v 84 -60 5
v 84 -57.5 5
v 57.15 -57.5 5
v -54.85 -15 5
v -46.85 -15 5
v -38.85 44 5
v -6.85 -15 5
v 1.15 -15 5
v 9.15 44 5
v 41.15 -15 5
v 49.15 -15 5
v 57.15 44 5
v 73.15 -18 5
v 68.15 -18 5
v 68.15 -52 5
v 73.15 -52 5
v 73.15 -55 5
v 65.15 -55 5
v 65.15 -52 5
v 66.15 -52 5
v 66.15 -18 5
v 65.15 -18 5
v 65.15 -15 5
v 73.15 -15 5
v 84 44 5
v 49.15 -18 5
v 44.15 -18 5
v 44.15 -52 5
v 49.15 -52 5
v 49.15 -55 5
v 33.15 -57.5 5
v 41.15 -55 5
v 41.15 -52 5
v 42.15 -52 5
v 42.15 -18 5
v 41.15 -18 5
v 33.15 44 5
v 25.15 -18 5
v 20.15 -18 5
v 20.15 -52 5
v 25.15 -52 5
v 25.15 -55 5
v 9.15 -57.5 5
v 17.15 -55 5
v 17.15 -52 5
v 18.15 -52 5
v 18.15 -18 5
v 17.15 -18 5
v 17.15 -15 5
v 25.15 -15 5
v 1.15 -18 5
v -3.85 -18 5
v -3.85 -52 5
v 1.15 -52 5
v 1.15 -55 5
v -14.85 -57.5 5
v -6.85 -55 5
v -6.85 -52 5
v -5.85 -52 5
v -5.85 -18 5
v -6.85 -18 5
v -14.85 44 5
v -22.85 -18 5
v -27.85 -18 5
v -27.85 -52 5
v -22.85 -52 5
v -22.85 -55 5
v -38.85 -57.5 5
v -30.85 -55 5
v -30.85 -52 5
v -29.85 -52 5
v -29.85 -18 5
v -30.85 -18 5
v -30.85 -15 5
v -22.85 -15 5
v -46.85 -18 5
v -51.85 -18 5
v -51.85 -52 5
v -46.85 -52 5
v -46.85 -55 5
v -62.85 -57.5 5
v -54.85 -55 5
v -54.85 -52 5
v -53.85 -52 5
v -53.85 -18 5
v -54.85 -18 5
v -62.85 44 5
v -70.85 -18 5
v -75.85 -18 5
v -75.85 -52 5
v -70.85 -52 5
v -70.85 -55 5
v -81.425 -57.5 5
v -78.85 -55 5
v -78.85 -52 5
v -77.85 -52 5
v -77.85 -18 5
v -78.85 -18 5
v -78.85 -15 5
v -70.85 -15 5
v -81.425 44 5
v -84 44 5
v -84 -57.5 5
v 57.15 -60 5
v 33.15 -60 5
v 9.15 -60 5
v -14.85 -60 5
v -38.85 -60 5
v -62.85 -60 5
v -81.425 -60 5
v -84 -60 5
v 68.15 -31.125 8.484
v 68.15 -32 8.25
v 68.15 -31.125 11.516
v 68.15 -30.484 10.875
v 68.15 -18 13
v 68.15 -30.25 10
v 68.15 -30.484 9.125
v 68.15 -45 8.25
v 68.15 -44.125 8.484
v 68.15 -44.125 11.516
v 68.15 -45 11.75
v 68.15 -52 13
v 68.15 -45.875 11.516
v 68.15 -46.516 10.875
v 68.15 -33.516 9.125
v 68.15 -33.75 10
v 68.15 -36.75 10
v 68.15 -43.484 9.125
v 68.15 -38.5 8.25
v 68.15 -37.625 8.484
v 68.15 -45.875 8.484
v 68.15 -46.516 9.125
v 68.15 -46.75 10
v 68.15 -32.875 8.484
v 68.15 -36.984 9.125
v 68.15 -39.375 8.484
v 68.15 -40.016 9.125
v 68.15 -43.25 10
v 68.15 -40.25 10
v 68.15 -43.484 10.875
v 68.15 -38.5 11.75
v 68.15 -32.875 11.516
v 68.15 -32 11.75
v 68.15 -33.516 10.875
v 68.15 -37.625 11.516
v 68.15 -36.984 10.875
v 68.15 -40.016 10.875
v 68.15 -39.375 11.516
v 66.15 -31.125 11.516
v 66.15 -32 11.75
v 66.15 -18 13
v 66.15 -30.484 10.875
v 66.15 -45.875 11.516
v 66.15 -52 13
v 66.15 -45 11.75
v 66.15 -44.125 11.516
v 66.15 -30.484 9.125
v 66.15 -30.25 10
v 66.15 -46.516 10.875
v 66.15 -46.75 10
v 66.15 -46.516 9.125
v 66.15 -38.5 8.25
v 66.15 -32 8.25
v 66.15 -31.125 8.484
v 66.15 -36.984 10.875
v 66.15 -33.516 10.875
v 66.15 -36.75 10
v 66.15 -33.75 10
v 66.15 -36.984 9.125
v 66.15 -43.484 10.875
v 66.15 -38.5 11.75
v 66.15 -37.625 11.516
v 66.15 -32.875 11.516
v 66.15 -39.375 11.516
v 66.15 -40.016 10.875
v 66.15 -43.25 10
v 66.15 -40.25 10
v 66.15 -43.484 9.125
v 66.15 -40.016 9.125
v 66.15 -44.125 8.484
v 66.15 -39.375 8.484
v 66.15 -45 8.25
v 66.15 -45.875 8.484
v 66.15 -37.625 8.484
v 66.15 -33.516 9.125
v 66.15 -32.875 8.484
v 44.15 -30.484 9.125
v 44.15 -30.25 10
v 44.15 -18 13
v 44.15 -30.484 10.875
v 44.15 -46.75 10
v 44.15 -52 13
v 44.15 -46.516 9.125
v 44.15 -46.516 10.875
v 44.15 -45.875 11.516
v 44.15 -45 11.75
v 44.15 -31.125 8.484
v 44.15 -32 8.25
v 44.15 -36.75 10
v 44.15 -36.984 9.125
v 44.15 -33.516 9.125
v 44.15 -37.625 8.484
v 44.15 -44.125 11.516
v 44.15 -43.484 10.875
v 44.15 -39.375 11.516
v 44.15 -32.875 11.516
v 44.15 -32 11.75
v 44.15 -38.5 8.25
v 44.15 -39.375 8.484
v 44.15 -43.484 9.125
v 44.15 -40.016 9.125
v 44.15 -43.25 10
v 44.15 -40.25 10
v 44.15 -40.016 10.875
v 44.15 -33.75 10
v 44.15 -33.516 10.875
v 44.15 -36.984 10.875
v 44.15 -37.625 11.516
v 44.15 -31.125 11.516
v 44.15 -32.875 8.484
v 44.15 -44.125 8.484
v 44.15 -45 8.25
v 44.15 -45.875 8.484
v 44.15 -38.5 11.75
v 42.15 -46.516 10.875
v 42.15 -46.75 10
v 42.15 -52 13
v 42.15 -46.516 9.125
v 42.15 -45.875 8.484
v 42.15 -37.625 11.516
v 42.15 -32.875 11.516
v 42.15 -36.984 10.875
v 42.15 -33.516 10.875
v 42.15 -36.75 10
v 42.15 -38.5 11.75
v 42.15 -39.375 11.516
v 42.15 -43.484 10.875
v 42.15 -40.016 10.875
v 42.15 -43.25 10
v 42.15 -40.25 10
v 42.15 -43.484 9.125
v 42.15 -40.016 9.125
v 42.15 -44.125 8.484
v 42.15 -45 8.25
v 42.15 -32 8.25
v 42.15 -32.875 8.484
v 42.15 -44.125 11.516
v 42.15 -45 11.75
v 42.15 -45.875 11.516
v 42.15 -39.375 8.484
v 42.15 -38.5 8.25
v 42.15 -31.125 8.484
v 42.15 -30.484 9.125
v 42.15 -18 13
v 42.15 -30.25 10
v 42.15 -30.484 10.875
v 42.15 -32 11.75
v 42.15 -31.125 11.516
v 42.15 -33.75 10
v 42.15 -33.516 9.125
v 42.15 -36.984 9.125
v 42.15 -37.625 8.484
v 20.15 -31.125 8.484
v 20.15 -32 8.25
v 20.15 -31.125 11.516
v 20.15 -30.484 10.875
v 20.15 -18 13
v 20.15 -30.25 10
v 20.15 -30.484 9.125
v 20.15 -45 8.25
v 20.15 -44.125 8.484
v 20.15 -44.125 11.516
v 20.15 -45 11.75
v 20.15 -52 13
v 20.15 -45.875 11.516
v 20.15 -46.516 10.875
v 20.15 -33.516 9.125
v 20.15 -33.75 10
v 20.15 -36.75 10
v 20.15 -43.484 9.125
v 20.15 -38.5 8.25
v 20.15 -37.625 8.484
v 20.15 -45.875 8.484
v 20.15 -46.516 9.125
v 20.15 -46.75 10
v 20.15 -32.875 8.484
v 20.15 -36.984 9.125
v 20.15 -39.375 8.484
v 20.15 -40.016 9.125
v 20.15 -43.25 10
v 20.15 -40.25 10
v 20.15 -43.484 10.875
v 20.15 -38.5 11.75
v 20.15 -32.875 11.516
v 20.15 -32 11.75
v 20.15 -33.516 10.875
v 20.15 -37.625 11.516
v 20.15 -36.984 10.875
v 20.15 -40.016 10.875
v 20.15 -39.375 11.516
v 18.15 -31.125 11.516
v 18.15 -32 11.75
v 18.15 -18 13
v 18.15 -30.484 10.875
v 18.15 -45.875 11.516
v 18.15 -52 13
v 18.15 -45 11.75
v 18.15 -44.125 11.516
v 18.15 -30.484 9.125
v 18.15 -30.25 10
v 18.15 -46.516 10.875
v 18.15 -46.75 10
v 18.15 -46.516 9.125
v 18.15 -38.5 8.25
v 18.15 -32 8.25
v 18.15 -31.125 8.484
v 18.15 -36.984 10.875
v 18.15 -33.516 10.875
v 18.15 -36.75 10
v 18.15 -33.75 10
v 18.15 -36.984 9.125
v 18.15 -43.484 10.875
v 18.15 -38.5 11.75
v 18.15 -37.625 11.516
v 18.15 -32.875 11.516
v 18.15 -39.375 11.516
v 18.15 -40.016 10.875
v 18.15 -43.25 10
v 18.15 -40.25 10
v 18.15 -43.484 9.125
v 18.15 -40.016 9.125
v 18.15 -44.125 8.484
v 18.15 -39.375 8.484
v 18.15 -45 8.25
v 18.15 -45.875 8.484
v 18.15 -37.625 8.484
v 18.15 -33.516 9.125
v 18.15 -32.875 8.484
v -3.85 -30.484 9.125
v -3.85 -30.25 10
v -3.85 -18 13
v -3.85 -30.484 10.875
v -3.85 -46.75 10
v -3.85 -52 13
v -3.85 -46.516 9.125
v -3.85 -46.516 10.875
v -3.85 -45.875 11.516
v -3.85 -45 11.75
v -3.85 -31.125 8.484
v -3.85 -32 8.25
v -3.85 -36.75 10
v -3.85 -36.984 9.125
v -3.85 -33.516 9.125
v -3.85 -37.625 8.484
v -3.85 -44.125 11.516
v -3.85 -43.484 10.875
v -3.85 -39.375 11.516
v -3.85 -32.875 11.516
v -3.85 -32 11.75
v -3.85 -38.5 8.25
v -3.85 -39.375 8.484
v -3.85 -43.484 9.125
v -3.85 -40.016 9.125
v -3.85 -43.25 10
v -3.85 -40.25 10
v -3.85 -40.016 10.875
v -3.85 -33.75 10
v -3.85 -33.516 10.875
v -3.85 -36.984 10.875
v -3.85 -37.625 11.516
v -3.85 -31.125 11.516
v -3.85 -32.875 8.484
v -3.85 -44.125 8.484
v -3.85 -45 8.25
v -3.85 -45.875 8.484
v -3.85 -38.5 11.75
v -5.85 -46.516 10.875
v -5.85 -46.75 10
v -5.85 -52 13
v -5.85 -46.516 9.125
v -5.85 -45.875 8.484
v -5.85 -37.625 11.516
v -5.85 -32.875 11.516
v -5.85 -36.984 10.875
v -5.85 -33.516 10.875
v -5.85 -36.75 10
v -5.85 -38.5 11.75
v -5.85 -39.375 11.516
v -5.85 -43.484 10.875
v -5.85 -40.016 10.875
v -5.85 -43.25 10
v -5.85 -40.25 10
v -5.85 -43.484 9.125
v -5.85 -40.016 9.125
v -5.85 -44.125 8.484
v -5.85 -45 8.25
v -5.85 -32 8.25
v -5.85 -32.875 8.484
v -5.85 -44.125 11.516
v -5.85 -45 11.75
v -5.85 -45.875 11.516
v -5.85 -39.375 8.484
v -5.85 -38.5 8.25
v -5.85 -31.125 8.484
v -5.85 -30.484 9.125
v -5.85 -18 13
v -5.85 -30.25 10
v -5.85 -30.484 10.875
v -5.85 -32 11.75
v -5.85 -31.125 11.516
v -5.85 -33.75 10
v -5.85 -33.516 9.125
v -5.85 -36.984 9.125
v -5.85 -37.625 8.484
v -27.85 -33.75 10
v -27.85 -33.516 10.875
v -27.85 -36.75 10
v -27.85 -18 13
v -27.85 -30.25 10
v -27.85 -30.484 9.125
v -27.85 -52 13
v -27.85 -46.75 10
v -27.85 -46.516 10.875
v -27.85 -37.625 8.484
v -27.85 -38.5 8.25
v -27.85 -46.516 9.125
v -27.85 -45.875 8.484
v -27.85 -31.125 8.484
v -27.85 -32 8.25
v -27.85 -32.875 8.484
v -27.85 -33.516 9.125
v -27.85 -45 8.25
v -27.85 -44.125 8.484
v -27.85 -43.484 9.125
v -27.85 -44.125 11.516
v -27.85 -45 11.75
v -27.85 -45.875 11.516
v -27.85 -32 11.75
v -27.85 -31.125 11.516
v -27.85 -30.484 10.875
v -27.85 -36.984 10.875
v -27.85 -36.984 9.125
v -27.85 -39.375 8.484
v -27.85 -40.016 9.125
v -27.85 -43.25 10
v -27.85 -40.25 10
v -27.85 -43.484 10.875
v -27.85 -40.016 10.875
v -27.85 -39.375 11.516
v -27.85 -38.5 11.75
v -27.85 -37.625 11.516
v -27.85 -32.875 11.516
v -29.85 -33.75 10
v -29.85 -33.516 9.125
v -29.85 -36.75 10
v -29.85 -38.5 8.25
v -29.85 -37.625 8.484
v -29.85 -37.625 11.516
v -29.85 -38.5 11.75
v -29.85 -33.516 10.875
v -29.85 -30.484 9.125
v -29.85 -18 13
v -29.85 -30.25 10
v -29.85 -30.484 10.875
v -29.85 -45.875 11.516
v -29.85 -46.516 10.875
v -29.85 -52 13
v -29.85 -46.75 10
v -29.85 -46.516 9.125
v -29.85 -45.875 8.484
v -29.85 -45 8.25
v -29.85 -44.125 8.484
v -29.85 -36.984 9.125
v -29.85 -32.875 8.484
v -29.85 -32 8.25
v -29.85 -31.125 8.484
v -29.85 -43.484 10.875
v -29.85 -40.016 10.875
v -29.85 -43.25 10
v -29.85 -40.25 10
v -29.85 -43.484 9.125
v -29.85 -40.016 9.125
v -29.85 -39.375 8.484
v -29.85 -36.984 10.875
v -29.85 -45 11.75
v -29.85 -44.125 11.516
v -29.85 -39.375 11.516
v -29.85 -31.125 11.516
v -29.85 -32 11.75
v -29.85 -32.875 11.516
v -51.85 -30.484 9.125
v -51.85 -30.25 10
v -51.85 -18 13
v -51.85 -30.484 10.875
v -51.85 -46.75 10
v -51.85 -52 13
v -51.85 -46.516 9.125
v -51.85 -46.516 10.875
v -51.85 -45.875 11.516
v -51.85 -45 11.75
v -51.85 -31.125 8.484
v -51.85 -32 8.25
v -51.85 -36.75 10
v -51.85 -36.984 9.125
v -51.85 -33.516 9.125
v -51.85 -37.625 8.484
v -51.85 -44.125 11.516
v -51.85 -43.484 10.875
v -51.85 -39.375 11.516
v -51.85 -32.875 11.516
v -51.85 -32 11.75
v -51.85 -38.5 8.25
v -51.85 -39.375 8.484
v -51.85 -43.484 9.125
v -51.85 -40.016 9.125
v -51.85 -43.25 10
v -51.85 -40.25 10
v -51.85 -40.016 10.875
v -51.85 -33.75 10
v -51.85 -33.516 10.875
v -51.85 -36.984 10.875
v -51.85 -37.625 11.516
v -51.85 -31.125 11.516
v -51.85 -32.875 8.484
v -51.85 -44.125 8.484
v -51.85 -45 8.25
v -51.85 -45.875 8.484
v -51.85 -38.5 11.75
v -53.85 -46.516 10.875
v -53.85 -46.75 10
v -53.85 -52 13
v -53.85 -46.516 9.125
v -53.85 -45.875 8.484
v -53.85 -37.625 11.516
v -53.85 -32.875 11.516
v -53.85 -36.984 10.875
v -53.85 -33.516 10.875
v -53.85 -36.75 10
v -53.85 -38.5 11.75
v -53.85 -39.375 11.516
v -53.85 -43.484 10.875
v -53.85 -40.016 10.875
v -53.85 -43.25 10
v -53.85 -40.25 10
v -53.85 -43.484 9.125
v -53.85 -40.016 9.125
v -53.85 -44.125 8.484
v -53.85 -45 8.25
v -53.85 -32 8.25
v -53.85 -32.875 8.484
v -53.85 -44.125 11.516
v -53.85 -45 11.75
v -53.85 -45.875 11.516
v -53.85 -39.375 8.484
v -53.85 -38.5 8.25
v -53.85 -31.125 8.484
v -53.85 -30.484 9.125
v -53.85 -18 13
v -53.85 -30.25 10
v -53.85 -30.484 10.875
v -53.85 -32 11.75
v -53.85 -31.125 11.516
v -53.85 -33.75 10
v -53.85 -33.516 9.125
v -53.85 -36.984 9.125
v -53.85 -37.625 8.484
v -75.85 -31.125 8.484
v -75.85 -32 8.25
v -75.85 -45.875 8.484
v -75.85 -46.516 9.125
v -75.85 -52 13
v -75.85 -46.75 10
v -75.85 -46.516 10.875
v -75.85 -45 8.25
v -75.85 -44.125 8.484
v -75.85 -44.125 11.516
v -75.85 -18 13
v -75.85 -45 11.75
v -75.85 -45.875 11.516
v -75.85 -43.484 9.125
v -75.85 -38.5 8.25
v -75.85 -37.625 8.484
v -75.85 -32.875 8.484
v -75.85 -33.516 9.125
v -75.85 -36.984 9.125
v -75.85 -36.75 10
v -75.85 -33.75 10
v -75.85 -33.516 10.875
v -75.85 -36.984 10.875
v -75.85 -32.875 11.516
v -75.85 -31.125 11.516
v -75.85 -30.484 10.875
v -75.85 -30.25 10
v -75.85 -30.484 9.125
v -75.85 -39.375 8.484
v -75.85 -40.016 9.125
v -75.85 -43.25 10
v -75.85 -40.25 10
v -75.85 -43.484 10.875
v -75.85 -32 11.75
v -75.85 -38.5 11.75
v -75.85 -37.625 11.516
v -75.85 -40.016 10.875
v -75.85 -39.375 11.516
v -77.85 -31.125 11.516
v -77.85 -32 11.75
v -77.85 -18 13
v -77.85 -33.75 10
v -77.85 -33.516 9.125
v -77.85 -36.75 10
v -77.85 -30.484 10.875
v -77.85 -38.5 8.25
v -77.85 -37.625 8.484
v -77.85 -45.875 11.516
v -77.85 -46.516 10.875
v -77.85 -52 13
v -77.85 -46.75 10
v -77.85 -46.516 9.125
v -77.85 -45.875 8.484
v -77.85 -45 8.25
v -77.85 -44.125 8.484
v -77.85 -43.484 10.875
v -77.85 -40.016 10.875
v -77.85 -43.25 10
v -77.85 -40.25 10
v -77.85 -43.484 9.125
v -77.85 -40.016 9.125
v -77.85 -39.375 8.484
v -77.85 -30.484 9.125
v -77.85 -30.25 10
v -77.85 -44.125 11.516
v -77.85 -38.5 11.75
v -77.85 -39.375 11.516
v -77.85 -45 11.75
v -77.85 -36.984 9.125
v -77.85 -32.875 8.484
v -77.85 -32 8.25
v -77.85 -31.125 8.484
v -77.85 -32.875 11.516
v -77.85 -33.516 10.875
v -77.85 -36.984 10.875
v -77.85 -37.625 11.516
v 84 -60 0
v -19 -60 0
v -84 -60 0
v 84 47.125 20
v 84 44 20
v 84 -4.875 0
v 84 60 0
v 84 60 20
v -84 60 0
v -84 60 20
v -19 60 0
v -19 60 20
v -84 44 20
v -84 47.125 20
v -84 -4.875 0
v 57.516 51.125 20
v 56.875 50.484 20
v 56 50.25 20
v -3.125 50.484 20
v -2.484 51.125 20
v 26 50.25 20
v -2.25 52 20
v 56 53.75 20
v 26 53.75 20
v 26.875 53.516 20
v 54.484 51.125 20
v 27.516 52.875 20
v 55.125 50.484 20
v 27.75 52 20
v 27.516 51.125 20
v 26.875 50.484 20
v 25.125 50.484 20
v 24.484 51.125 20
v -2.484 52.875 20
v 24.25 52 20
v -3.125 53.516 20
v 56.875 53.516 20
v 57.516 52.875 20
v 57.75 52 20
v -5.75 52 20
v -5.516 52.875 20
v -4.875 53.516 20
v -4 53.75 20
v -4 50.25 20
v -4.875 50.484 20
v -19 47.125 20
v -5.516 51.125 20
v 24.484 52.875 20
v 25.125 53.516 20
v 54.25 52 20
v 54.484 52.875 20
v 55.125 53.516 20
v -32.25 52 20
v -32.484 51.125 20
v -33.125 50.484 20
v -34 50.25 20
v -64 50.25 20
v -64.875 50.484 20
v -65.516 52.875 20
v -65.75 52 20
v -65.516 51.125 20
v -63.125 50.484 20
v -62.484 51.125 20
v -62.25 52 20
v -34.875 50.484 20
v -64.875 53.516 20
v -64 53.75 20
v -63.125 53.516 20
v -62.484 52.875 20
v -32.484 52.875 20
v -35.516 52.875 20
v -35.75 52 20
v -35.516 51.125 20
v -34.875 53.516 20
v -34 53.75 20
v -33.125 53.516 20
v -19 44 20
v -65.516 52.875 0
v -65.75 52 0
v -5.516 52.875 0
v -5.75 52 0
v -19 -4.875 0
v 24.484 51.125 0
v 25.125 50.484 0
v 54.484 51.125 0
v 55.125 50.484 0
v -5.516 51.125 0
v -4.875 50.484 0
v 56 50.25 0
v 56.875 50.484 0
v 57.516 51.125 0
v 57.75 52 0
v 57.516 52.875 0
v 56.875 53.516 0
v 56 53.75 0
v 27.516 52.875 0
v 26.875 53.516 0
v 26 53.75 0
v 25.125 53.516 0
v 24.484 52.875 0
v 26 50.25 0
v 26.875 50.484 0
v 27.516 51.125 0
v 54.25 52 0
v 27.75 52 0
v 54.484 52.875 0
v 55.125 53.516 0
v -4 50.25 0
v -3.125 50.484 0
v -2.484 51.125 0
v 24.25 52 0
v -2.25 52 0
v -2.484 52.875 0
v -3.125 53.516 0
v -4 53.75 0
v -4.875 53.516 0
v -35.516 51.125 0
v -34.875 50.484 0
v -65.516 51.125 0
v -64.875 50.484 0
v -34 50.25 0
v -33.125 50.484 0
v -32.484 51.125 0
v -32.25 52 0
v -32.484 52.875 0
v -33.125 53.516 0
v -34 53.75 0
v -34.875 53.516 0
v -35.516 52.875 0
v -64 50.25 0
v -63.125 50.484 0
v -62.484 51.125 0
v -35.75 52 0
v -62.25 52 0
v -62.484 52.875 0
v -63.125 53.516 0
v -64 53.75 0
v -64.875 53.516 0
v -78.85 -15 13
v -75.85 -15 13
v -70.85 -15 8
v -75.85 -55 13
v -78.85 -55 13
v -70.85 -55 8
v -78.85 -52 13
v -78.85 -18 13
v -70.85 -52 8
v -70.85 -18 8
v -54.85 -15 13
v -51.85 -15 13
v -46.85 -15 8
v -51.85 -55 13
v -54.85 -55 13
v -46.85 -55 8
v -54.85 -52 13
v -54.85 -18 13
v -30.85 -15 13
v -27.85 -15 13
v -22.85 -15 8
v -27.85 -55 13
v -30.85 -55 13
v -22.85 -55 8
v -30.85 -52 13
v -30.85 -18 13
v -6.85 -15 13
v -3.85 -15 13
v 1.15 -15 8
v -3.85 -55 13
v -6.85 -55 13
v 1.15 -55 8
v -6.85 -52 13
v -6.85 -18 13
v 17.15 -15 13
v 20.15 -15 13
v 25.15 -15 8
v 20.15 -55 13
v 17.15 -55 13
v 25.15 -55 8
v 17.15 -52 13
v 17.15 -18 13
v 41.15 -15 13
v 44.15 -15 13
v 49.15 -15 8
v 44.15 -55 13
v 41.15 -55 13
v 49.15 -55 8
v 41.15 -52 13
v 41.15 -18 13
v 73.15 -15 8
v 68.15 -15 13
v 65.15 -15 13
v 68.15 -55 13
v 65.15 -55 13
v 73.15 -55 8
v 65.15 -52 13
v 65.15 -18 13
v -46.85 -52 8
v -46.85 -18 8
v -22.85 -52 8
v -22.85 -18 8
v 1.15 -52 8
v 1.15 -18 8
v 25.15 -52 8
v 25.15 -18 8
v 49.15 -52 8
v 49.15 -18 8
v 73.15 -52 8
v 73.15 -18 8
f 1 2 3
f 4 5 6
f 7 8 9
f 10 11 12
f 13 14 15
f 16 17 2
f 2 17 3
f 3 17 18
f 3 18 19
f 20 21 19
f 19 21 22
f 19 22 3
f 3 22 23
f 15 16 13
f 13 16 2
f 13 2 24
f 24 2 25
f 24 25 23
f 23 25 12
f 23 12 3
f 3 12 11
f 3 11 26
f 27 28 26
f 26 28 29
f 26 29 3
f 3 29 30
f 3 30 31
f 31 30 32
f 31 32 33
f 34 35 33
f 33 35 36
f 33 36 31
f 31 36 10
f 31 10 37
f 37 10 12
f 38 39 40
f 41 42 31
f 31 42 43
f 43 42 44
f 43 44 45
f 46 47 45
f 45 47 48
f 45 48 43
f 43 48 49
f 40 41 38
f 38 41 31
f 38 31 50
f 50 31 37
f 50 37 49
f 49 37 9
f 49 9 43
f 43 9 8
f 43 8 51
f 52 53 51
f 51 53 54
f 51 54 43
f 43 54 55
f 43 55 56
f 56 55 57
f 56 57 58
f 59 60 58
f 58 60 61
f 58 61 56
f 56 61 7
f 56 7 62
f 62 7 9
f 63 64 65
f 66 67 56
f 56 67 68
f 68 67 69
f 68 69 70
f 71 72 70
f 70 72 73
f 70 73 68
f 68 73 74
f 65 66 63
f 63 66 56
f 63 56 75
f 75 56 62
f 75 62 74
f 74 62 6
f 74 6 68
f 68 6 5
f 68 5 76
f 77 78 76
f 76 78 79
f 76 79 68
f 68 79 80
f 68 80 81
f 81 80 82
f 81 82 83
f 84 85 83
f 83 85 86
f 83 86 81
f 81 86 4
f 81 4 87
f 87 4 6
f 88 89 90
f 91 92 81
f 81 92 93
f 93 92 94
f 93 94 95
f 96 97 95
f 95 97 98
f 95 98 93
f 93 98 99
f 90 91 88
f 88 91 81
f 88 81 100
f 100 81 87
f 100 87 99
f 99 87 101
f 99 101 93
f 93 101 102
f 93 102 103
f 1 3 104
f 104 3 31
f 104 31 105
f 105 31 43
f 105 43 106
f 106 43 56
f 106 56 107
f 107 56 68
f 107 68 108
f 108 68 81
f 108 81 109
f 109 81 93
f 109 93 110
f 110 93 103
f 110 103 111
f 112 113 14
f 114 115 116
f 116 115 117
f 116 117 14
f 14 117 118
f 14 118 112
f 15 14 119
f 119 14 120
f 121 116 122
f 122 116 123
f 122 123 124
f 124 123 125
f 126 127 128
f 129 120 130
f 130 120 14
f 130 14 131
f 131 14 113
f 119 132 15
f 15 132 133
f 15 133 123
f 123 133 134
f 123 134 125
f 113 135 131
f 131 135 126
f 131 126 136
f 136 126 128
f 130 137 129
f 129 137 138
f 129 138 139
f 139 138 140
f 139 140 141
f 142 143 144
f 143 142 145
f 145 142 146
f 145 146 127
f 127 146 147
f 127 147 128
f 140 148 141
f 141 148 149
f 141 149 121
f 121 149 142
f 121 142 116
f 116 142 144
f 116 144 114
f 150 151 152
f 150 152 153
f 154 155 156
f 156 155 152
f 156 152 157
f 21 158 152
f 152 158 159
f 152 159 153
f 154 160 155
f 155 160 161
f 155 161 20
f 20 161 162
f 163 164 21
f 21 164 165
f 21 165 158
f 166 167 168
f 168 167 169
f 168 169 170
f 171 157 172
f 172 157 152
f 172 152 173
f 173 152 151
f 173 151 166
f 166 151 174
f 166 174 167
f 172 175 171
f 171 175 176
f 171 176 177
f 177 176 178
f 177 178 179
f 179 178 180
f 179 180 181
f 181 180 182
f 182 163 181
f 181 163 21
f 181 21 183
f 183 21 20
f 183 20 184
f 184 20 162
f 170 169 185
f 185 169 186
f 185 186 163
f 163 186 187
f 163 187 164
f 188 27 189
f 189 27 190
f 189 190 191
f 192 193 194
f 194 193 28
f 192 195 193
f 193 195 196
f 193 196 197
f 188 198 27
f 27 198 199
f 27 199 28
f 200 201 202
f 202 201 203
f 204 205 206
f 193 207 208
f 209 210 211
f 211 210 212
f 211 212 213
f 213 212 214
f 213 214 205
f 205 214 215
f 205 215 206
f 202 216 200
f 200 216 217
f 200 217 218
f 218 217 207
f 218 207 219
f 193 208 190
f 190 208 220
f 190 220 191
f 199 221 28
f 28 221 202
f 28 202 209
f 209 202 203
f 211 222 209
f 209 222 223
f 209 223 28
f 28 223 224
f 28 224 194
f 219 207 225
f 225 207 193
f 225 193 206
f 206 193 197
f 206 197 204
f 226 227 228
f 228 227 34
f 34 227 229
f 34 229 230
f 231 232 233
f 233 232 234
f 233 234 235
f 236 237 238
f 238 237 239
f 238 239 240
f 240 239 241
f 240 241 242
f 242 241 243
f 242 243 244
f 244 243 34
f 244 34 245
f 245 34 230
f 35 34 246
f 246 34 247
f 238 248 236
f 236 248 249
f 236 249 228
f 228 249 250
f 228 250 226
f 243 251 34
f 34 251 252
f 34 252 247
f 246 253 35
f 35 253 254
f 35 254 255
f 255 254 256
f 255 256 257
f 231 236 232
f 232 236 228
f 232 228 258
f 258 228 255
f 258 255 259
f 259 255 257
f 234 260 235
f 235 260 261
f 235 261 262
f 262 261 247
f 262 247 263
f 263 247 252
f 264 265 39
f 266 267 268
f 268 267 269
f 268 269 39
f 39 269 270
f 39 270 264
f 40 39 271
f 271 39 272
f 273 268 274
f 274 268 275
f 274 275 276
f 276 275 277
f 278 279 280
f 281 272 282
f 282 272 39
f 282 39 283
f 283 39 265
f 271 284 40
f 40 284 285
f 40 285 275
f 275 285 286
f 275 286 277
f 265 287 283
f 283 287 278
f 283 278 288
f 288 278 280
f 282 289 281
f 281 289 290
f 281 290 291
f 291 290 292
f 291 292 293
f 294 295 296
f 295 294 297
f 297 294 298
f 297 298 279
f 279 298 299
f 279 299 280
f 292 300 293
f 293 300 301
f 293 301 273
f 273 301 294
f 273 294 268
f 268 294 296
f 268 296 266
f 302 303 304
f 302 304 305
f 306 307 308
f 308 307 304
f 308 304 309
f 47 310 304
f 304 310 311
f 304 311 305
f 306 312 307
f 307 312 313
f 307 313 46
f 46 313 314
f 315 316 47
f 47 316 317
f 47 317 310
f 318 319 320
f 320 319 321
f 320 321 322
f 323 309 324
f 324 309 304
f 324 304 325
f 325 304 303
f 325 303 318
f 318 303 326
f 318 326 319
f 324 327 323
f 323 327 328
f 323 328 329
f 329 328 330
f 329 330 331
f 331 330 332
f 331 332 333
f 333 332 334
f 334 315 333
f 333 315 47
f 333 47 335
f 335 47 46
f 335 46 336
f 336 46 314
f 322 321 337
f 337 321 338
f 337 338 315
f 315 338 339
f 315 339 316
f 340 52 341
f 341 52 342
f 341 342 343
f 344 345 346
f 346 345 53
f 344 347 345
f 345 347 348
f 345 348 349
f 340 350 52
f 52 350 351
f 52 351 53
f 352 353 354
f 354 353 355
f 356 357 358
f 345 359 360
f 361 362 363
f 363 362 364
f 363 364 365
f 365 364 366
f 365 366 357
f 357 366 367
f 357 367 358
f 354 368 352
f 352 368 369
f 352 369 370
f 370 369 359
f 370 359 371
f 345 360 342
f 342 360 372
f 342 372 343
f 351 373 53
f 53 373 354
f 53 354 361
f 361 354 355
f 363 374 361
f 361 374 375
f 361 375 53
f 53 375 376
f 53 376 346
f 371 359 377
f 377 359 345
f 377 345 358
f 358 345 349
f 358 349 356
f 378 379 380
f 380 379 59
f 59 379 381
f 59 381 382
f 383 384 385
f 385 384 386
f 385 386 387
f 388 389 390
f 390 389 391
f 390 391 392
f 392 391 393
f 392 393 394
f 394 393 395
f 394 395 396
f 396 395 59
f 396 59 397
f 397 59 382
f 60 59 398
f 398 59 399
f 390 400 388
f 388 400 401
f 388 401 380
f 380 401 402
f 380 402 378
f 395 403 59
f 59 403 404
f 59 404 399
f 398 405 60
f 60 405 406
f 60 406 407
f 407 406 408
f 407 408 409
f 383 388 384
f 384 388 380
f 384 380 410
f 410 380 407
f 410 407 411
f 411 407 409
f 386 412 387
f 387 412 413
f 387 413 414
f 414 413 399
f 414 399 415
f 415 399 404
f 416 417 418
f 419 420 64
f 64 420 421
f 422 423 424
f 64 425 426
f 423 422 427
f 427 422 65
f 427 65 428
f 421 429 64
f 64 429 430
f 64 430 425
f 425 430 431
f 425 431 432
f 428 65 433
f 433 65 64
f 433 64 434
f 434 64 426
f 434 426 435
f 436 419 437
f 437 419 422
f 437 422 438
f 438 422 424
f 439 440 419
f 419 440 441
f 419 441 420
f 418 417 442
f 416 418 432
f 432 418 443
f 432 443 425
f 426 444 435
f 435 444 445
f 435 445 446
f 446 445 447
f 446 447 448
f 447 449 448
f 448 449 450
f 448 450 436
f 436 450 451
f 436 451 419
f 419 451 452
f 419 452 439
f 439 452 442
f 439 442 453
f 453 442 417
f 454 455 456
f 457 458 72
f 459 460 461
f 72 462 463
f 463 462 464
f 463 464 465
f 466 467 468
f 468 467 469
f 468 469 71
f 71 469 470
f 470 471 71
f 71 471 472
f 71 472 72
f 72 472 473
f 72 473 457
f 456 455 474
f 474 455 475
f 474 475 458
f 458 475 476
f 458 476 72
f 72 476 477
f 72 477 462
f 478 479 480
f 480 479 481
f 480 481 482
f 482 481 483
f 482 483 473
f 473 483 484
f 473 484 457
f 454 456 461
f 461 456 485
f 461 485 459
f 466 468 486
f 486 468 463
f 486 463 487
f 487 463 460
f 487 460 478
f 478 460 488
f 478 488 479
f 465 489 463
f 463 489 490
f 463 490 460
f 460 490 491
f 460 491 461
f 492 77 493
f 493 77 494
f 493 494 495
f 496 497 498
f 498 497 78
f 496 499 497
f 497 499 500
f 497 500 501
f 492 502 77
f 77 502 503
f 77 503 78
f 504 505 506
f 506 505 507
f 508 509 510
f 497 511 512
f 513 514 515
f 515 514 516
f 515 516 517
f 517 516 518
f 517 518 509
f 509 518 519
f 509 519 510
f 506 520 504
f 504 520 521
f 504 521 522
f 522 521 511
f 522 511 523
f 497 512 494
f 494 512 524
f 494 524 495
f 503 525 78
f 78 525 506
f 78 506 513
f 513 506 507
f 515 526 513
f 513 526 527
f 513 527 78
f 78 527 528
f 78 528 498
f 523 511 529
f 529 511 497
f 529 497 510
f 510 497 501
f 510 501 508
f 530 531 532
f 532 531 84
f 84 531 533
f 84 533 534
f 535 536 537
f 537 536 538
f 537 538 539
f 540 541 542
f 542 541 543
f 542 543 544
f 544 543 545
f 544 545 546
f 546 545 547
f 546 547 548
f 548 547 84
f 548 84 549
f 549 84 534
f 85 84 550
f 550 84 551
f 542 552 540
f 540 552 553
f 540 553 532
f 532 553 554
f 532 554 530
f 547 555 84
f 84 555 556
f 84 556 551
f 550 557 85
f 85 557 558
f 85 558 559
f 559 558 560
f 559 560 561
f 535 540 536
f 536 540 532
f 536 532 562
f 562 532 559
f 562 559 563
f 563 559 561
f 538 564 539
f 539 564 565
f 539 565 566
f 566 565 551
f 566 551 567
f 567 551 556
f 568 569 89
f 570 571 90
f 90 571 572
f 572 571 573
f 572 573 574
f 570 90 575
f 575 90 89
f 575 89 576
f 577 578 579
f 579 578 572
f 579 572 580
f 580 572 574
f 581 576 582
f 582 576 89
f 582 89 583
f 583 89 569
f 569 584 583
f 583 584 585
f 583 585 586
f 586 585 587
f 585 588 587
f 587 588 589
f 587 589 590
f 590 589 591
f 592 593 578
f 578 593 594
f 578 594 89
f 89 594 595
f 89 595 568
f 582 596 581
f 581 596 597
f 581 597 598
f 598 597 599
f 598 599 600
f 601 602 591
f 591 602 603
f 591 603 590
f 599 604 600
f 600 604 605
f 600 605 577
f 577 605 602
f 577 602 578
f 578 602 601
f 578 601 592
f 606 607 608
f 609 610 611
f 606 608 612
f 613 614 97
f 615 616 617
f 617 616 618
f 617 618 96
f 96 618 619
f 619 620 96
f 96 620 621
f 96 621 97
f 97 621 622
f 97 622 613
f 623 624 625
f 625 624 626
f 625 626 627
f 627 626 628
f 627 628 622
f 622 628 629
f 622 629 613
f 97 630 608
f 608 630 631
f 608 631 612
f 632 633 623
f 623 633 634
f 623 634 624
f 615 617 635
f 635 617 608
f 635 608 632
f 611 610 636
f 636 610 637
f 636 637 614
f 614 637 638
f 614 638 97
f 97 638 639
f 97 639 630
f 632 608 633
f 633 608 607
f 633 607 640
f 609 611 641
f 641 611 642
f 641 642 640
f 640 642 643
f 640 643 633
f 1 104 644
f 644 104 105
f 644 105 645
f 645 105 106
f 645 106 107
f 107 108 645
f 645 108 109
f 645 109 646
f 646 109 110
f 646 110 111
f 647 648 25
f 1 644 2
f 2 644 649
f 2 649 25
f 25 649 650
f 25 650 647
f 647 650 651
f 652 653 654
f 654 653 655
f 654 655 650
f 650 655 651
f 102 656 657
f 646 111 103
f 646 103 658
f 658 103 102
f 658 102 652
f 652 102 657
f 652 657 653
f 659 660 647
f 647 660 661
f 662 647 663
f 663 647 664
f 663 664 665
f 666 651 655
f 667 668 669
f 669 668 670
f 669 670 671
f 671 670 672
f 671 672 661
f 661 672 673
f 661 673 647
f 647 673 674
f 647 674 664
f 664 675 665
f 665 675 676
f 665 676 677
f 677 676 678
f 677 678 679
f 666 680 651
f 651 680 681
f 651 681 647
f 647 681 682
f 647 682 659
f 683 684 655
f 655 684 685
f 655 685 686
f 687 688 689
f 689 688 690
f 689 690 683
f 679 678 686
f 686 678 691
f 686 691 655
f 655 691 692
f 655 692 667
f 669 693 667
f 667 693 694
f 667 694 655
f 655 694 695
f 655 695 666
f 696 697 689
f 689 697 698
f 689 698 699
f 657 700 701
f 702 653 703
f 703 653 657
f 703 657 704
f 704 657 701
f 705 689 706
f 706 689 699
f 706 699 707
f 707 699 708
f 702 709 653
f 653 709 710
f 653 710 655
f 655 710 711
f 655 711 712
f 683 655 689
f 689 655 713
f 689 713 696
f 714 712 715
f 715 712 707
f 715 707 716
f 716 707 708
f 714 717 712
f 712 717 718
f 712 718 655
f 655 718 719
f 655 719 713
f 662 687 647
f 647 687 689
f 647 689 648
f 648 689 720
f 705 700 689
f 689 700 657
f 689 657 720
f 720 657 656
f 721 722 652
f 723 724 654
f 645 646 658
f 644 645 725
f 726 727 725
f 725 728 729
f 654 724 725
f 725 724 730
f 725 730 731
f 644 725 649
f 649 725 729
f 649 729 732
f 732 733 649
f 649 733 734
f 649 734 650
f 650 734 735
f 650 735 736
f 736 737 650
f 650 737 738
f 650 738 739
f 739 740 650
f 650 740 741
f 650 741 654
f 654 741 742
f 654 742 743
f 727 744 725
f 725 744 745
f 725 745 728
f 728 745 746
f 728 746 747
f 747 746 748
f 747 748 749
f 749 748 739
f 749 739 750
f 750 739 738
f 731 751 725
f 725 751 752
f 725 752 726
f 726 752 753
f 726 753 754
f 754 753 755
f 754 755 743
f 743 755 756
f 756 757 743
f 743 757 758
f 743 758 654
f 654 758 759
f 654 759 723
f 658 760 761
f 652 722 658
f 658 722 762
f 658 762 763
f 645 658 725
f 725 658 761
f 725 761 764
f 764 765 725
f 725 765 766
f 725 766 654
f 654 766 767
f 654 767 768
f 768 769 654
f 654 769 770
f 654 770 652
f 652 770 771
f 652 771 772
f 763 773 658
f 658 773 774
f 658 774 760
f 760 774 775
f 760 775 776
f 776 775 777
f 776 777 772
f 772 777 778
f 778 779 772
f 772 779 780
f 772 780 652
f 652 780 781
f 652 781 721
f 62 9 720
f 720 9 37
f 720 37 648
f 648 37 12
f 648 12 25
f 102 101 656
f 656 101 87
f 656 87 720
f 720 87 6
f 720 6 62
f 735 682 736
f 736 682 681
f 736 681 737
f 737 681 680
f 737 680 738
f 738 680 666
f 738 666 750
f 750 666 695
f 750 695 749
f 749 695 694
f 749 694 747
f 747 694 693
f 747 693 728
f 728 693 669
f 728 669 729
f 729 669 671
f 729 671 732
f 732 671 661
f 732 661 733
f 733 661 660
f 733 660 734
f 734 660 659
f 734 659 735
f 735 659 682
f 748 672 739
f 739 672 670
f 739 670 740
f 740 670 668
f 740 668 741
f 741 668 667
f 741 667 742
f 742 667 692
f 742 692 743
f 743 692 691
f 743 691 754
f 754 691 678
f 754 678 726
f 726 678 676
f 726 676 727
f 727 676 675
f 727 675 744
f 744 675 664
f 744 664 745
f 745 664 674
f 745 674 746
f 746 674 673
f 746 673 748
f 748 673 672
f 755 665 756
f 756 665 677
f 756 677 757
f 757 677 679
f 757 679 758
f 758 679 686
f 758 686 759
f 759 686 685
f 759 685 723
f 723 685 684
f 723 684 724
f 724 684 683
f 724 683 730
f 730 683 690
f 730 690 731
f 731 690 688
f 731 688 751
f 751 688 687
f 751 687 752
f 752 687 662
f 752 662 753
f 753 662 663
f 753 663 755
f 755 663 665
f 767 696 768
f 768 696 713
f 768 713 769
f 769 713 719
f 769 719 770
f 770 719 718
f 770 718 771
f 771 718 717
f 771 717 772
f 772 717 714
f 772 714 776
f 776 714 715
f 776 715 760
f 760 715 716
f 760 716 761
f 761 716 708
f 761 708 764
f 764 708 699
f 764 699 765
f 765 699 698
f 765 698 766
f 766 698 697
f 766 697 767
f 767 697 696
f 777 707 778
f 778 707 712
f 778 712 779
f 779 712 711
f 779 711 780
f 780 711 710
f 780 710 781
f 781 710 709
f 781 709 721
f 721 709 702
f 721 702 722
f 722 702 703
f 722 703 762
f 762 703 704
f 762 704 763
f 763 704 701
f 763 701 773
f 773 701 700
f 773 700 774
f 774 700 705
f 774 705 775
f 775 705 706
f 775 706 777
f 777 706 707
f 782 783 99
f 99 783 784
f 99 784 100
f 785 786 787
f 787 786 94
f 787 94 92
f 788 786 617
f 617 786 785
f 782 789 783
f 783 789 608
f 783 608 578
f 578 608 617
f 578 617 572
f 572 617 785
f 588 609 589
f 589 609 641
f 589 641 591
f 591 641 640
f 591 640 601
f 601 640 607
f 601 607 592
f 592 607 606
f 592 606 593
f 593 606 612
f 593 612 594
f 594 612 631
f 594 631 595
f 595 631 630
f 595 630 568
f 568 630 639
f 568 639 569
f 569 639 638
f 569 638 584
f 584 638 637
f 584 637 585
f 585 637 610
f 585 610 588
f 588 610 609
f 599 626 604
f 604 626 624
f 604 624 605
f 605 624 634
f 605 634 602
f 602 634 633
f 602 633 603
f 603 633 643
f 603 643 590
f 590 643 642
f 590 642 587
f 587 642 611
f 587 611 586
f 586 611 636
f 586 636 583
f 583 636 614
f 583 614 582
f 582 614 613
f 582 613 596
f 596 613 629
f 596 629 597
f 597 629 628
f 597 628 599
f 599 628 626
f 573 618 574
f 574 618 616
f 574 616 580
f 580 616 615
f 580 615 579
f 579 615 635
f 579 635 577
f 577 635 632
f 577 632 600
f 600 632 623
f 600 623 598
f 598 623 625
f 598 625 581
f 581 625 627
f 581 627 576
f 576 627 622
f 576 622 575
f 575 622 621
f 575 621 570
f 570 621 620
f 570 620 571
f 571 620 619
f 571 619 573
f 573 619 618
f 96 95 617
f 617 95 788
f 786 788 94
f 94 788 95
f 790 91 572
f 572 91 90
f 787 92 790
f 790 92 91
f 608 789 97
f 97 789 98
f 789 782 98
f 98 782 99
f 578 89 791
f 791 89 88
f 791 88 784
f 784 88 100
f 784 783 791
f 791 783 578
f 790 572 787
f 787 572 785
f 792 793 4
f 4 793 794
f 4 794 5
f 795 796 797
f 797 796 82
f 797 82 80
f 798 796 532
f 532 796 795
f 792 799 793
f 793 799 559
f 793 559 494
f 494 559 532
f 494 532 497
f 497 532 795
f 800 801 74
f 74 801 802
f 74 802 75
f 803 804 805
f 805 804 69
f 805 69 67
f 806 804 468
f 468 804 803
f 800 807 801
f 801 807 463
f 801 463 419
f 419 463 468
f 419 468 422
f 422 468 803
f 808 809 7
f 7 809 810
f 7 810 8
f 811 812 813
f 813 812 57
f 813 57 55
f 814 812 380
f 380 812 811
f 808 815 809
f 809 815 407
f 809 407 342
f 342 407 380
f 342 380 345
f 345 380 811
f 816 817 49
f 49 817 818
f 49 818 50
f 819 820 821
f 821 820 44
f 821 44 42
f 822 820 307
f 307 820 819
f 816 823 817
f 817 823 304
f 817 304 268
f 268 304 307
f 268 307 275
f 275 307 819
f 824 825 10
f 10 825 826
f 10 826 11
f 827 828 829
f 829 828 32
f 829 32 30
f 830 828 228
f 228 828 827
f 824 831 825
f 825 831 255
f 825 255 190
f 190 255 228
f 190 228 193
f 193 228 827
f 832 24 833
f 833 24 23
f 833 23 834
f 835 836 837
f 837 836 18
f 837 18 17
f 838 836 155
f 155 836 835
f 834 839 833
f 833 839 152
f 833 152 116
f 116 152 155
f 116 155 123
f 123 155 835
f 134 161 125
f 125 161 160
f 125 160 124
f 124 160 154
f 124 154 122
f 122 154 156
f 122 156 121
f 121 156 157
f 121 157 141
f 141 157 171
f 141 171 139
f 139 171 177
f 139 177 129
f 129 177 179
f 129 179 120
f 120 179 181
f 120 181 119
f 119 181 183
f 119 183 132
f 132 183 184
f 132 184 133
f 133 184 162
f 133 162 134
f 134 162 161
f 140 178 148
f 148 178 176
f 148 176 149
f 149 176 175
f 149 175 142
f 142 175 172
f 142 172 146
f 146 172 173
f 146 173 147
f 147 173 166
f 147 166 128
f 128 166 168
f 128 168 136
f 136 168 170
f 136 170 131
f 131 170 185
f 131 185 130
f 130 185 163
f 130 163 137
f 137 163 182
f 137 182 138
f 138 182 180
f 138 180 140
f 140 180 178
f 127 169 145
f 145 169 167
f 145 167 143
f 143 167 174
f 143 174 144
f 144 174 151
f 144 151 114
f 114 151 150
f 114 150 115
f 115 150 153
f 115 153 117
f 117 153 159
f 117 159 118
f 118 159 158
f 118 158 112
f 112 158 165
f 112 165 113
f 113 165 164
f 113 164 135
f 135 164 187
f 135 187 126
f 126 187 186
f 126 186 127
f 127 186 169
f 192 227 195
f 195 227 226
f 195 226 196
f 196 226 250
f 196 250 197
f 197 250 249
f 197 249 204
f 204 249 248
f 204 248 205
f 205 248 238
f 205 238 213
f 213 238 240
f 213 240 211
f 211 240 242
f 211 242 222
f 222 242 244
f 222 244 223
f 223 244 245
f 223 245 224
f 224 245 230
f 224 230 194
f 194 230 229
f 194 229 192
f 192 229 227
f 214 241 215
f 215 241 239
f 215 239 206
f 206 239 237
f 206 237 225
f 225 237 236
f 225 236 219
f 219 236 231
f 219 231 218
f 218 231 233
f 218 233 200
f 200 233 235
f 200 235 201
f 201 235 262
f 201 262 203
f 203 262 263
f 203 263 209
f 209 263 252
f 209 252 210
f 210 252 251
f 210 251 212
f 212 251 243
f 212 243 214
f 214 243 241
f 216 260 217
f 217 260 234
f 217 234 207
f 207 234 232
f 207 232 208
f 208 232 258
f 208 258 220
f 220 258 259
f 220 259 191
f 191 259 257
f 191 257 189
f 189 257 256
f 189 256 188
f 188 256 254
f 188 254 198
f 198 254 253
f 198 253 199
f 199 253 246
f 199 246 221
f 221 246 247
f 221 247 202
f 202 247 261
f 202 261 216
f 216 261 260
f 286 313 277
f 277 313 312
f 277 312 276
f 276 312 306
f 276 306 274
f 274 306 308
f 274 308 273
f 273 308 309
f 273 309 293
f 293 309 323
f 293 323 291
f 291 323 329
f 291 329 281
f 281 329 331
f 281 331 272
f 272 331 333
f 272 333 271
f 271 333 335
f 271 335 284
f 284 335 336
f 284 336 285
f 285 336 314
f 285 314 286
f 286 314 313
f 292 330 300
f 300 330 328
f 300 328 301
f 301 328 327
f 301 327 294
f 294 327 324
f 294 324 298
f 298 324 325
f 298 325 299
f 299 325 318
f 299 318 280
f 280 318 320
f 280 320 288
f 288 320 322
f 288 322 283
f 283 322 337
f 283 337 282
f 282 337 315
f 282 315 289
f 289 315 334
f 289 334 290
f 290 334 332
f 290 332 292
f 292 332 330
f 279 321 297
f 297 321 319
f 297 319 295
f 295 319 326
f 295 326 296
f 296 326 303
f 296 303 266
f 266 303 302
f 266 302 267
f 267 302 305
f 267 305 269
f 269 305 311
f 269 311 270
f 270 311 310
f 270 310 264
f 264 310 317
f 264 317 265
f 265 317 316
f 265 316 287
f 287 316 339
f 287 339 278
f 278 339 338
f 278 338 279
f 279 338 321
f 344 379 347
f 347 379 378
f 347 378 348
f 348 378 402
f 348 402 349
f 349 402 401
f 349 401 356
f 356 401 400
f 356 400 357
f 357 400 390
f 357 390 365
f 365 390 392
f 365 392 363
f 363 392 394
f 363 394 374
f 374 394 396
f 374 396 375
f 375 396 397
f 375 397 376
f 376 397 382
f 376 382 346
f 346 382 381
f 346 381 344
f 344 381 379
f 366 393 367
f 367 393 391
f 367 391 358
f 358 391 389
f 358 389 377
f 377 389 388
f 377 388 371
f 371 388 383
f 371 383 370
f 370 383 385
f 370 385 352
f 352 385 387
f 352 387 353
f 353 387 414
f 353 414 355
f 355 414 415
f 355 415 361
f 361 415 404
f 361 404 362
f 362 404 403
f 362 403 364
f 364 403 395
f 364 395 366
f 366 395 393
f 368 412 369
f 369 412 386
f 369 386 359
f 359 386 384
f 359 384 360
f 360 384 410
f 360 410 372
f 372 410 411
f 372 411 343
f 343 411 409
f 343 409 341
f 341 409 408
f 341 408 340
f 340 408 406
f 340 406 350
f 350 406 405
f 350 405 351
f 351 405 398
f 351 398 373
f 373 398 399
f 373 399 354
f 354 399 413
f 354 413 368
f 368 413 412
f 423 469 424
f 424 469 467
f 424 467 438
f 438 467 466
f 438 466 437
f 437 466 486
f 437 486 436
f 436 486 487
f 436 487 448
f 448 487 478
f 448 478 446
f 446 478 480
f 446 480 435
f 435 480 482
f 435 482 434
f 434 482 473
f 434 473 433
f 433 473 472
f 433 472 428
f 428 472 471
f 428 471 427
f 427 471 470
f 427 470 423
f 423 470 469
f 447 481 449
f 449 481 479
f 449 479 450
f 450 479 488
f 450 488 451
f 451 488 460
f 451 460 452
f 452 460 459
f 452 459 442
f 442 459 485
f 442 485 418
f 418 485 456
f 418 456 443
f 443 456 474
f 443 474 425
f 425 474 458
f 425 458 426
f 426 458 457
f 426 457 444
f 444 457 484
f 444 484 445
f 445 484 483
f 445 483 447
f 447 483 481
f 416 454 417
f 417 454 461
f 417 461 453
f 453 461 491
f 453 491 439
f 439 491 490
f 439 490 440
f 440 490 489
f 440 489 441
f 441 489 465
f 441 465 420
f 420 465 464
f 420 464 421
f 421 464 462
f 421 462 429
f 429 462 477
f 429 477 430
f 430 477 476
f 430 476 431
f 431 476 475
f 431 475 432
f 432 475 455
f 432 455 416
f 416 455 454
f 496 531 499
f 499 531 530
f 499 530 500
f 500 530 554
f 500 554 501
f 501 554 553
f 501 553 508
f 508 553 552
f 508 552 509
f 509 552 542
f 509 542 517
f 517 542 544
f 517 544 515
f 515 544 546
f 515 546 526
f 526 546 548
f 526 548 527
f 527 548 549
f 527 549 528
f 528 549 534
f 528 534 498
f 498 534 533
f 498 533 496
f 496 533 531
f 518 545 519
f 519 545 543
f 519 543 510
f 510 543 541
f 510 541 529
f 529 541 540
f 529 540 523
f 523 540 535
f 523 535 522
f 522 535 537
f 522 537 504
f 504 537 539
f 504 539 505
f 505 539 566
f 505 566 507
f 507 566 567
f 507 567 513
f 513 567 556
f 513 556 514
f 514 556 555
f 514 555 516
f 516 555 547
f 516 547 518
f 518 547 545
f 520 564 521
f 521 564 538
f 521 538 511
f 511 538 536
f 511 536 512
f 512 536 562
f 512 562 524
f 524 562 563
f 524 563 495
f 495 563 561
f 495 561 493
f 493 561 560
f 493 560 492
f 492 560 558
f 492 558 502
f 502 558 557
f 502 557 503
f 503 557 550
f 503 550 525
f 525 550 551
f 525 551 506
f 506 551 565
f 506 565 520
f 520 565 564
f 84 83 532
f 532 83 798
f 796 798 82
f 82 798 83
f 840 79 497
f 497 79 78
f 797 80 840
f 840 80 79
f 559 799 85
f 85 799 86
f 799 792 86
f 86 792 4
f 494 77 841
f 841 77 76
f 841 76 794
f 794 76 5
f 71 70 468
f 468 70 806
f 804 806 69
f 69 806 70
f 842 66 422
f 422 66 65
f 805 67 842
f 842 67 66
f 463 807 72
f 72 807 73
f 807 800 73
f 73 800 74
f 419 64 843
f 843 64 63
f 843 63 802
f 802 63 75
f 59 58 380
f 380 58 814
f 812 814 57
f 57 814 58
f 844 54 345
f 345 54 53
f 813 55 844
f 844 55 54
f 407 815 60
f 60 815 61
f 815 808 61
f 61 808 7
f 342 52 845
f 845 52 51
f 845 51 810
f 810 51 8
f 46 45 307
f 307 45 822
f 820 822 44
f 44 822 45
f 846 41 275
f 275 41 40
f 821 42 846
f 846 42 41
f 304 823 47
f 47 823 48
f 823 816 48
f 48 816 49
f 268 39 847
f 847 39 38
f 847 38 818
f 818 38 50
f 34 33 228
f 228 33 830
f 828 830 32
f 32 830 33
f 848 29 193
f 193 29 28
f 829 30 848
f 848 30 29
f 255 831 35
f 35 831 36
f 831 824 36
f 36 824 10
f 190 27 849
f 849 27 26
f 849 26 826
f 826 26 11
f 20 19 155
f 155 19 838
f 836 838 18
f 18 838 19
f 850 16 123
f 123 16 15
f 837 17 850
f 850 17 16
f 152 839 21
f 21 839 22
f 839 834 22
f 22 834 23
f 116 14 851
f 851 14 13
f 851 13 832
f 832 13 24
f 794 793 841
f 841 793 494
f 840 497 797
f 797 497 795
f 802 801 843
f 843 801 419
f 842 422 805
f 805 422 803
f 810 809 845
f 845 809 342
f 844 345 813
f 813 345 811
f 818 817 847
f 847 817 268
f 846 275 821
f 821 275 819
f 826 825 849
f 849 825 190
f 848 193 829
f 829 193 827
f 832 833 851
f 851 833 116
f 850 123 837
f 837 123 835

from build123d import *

# Parameters (mm, degrees)
SKETCH1_W                  = 168
SKETCH1_H                  = 120
BOSS_EXTRUDE1_DEPTH        = 20
SKETCH2_W                  = 168
SKETCH2_H                  = 104
CUT_EXTRUDE1_DEPTH         = 15
SKETCH3_R                  = 1.75
CUT_EXTRUDE2_DEPTH         = 21
SKETCH5_W                  = 2
SKETCH5_H                  = 40
BOSS_EXTRUDE2_DEPTH        = 8
SKETCH6_R                  = 1.75
CUT_EXTRUDE3_DEPTH         = 162.85
SKETCH7_W                  = 8
SKETCH7_H                  = 3
BOSS_EXTRUDE3_DEPTH        = 8
CHAMFER1_SIZE              = 5
LPATTERN1_COUNT            = 7
LPATTERN1_PITCH            = 24
CHAMFER1_OF_LPATTERN1_SIZE = 5


with BuildPart() as part:
    # Sketch1 → Boss-Extrude1 (new body)
    with BuildSketch(Plane.XY):
        Rectangle(SKETCH1_W, SKETCH1_H)
    extrude(amount=BOSS_EXTRUDE1_DEPTH)

    # Sketch2 → Cut-Extrude1 (cut)
    with BuildSketch(Plane.XY.offset(20)):
        with Locations((0, -8)):
            Rectangle(SKETCH2_W, SKETCH2_H)
    extrude(amount=-CUT_EXTRUDE1_DEPTH, mode=Mode.SUBTRACT)

    # Sketch3 → Cut-Extrude2 (cut, through all)
    with BuildSketch(Plane.XY.offset(20)):
        with Locations((-64, 52)):
            Circle(SKETCH3_R)
        with Locations((-34, 52)):
            Circle(SKETCH3_R)
        with Locations((-4, 52)):
            Circle(SKETCH3_R)
        with Locations((26, 52)):
            Circle(SKETCH3_R)
        with Locations((56, 52)):
            Circle(SKETCH3_R)
    extrude(amount=-CUT_EXTRUDE2_DEPTH, mode=Mode.SUBTRACT)

    # Sketch5 → Boss-Extrude2 (add)
    with BuildSketch(Plane.XY.offset(5)):
        with Locations((-76.85, -35)):
            Rectangle(SKETCH5_W, SKETCH5_H)
    boss_extrude2 = extrude(amount=BOSS_EXTRUDE2_DEPTH)

    # Sketch6 → Cut-Extrude3 (cut, through all)
    with BuildSketch(Plane.ZY.offset(77.85)):
        with Locations((10, -45)):
            Circle(SKETCH6_R)
        with Locations((10, -38.5)):
            Circle(SKETCH6_R)
        with Locations((10, -32)):
            Circle(SKETCH6_R)
    cut_extrude3 = extrude(amount=-CUT_EXTRUDE3_DEPTH, mode=Mode.SUBTRACT)

    # Sketch7 → Boss-Extrude3 (add)
    with BuildSketch(Plane.XY.offset(5)):
        with Locations((-74.85, -53.5)):
            Rectangle(SKETCH7_W, SKETCH7_H)
        with Locations((-74.85, -16.5)):
            Rectangle(SKETCH7_W, SKETCH7_H)
    boss_extrude3 = extrude(amount=BOSS_EXTRUDE3_DEPTH)

    # Chamfer1
    chamfer1_edges = [part.edges().sort_by_distance(p)[0] for p in [
        (-70.85, -16.5, 13),
        (-70.85, -53.5, 13),
    ]]
    chamfer(chamfer1_edges, length=CHAMFER1_SIZE)

    # LPattern1: Boss-Extrude2, Cut-Extrude3, Boss-Extrude3 ×7
    with Locations(*[(i * LPATTERN1_PITCH, 0, 0) for i in range(1, LPATTERN1_COUNT)]):
        add(boss_extrude2)
        add(cut_extrude3, mode=Mode.SUBTRACT)
        add(boss_extrude3)

    # Chamfer1 of LPattern1
    chamfer1_of_lpattern1_edges = [part.edges().sort_by_distance(p)[0] for p in [
        (-46.85, -16.5, 13),
        (-46.85, -53.5, 13),
        (-22.85, -16.5, 13),
        (-22.85, -53.5, 13),
        (1.15, -16.5, 13),
        (1.15, -53.5, 13),
        (25.15, -16.5, 13),
        (25.15, -53.5, 13),
        (49.15, -16.5, 13),
        (49.15, -53.5, 13),
        (73.15, -16.5, 13),
        (73.15, -53.5, 13),
    ]]
    chamfer(chamfer1_of_lpattern1_edges, length=CHAMFER1_OF_LPATTERN1_SIZE)


solid = part.part
